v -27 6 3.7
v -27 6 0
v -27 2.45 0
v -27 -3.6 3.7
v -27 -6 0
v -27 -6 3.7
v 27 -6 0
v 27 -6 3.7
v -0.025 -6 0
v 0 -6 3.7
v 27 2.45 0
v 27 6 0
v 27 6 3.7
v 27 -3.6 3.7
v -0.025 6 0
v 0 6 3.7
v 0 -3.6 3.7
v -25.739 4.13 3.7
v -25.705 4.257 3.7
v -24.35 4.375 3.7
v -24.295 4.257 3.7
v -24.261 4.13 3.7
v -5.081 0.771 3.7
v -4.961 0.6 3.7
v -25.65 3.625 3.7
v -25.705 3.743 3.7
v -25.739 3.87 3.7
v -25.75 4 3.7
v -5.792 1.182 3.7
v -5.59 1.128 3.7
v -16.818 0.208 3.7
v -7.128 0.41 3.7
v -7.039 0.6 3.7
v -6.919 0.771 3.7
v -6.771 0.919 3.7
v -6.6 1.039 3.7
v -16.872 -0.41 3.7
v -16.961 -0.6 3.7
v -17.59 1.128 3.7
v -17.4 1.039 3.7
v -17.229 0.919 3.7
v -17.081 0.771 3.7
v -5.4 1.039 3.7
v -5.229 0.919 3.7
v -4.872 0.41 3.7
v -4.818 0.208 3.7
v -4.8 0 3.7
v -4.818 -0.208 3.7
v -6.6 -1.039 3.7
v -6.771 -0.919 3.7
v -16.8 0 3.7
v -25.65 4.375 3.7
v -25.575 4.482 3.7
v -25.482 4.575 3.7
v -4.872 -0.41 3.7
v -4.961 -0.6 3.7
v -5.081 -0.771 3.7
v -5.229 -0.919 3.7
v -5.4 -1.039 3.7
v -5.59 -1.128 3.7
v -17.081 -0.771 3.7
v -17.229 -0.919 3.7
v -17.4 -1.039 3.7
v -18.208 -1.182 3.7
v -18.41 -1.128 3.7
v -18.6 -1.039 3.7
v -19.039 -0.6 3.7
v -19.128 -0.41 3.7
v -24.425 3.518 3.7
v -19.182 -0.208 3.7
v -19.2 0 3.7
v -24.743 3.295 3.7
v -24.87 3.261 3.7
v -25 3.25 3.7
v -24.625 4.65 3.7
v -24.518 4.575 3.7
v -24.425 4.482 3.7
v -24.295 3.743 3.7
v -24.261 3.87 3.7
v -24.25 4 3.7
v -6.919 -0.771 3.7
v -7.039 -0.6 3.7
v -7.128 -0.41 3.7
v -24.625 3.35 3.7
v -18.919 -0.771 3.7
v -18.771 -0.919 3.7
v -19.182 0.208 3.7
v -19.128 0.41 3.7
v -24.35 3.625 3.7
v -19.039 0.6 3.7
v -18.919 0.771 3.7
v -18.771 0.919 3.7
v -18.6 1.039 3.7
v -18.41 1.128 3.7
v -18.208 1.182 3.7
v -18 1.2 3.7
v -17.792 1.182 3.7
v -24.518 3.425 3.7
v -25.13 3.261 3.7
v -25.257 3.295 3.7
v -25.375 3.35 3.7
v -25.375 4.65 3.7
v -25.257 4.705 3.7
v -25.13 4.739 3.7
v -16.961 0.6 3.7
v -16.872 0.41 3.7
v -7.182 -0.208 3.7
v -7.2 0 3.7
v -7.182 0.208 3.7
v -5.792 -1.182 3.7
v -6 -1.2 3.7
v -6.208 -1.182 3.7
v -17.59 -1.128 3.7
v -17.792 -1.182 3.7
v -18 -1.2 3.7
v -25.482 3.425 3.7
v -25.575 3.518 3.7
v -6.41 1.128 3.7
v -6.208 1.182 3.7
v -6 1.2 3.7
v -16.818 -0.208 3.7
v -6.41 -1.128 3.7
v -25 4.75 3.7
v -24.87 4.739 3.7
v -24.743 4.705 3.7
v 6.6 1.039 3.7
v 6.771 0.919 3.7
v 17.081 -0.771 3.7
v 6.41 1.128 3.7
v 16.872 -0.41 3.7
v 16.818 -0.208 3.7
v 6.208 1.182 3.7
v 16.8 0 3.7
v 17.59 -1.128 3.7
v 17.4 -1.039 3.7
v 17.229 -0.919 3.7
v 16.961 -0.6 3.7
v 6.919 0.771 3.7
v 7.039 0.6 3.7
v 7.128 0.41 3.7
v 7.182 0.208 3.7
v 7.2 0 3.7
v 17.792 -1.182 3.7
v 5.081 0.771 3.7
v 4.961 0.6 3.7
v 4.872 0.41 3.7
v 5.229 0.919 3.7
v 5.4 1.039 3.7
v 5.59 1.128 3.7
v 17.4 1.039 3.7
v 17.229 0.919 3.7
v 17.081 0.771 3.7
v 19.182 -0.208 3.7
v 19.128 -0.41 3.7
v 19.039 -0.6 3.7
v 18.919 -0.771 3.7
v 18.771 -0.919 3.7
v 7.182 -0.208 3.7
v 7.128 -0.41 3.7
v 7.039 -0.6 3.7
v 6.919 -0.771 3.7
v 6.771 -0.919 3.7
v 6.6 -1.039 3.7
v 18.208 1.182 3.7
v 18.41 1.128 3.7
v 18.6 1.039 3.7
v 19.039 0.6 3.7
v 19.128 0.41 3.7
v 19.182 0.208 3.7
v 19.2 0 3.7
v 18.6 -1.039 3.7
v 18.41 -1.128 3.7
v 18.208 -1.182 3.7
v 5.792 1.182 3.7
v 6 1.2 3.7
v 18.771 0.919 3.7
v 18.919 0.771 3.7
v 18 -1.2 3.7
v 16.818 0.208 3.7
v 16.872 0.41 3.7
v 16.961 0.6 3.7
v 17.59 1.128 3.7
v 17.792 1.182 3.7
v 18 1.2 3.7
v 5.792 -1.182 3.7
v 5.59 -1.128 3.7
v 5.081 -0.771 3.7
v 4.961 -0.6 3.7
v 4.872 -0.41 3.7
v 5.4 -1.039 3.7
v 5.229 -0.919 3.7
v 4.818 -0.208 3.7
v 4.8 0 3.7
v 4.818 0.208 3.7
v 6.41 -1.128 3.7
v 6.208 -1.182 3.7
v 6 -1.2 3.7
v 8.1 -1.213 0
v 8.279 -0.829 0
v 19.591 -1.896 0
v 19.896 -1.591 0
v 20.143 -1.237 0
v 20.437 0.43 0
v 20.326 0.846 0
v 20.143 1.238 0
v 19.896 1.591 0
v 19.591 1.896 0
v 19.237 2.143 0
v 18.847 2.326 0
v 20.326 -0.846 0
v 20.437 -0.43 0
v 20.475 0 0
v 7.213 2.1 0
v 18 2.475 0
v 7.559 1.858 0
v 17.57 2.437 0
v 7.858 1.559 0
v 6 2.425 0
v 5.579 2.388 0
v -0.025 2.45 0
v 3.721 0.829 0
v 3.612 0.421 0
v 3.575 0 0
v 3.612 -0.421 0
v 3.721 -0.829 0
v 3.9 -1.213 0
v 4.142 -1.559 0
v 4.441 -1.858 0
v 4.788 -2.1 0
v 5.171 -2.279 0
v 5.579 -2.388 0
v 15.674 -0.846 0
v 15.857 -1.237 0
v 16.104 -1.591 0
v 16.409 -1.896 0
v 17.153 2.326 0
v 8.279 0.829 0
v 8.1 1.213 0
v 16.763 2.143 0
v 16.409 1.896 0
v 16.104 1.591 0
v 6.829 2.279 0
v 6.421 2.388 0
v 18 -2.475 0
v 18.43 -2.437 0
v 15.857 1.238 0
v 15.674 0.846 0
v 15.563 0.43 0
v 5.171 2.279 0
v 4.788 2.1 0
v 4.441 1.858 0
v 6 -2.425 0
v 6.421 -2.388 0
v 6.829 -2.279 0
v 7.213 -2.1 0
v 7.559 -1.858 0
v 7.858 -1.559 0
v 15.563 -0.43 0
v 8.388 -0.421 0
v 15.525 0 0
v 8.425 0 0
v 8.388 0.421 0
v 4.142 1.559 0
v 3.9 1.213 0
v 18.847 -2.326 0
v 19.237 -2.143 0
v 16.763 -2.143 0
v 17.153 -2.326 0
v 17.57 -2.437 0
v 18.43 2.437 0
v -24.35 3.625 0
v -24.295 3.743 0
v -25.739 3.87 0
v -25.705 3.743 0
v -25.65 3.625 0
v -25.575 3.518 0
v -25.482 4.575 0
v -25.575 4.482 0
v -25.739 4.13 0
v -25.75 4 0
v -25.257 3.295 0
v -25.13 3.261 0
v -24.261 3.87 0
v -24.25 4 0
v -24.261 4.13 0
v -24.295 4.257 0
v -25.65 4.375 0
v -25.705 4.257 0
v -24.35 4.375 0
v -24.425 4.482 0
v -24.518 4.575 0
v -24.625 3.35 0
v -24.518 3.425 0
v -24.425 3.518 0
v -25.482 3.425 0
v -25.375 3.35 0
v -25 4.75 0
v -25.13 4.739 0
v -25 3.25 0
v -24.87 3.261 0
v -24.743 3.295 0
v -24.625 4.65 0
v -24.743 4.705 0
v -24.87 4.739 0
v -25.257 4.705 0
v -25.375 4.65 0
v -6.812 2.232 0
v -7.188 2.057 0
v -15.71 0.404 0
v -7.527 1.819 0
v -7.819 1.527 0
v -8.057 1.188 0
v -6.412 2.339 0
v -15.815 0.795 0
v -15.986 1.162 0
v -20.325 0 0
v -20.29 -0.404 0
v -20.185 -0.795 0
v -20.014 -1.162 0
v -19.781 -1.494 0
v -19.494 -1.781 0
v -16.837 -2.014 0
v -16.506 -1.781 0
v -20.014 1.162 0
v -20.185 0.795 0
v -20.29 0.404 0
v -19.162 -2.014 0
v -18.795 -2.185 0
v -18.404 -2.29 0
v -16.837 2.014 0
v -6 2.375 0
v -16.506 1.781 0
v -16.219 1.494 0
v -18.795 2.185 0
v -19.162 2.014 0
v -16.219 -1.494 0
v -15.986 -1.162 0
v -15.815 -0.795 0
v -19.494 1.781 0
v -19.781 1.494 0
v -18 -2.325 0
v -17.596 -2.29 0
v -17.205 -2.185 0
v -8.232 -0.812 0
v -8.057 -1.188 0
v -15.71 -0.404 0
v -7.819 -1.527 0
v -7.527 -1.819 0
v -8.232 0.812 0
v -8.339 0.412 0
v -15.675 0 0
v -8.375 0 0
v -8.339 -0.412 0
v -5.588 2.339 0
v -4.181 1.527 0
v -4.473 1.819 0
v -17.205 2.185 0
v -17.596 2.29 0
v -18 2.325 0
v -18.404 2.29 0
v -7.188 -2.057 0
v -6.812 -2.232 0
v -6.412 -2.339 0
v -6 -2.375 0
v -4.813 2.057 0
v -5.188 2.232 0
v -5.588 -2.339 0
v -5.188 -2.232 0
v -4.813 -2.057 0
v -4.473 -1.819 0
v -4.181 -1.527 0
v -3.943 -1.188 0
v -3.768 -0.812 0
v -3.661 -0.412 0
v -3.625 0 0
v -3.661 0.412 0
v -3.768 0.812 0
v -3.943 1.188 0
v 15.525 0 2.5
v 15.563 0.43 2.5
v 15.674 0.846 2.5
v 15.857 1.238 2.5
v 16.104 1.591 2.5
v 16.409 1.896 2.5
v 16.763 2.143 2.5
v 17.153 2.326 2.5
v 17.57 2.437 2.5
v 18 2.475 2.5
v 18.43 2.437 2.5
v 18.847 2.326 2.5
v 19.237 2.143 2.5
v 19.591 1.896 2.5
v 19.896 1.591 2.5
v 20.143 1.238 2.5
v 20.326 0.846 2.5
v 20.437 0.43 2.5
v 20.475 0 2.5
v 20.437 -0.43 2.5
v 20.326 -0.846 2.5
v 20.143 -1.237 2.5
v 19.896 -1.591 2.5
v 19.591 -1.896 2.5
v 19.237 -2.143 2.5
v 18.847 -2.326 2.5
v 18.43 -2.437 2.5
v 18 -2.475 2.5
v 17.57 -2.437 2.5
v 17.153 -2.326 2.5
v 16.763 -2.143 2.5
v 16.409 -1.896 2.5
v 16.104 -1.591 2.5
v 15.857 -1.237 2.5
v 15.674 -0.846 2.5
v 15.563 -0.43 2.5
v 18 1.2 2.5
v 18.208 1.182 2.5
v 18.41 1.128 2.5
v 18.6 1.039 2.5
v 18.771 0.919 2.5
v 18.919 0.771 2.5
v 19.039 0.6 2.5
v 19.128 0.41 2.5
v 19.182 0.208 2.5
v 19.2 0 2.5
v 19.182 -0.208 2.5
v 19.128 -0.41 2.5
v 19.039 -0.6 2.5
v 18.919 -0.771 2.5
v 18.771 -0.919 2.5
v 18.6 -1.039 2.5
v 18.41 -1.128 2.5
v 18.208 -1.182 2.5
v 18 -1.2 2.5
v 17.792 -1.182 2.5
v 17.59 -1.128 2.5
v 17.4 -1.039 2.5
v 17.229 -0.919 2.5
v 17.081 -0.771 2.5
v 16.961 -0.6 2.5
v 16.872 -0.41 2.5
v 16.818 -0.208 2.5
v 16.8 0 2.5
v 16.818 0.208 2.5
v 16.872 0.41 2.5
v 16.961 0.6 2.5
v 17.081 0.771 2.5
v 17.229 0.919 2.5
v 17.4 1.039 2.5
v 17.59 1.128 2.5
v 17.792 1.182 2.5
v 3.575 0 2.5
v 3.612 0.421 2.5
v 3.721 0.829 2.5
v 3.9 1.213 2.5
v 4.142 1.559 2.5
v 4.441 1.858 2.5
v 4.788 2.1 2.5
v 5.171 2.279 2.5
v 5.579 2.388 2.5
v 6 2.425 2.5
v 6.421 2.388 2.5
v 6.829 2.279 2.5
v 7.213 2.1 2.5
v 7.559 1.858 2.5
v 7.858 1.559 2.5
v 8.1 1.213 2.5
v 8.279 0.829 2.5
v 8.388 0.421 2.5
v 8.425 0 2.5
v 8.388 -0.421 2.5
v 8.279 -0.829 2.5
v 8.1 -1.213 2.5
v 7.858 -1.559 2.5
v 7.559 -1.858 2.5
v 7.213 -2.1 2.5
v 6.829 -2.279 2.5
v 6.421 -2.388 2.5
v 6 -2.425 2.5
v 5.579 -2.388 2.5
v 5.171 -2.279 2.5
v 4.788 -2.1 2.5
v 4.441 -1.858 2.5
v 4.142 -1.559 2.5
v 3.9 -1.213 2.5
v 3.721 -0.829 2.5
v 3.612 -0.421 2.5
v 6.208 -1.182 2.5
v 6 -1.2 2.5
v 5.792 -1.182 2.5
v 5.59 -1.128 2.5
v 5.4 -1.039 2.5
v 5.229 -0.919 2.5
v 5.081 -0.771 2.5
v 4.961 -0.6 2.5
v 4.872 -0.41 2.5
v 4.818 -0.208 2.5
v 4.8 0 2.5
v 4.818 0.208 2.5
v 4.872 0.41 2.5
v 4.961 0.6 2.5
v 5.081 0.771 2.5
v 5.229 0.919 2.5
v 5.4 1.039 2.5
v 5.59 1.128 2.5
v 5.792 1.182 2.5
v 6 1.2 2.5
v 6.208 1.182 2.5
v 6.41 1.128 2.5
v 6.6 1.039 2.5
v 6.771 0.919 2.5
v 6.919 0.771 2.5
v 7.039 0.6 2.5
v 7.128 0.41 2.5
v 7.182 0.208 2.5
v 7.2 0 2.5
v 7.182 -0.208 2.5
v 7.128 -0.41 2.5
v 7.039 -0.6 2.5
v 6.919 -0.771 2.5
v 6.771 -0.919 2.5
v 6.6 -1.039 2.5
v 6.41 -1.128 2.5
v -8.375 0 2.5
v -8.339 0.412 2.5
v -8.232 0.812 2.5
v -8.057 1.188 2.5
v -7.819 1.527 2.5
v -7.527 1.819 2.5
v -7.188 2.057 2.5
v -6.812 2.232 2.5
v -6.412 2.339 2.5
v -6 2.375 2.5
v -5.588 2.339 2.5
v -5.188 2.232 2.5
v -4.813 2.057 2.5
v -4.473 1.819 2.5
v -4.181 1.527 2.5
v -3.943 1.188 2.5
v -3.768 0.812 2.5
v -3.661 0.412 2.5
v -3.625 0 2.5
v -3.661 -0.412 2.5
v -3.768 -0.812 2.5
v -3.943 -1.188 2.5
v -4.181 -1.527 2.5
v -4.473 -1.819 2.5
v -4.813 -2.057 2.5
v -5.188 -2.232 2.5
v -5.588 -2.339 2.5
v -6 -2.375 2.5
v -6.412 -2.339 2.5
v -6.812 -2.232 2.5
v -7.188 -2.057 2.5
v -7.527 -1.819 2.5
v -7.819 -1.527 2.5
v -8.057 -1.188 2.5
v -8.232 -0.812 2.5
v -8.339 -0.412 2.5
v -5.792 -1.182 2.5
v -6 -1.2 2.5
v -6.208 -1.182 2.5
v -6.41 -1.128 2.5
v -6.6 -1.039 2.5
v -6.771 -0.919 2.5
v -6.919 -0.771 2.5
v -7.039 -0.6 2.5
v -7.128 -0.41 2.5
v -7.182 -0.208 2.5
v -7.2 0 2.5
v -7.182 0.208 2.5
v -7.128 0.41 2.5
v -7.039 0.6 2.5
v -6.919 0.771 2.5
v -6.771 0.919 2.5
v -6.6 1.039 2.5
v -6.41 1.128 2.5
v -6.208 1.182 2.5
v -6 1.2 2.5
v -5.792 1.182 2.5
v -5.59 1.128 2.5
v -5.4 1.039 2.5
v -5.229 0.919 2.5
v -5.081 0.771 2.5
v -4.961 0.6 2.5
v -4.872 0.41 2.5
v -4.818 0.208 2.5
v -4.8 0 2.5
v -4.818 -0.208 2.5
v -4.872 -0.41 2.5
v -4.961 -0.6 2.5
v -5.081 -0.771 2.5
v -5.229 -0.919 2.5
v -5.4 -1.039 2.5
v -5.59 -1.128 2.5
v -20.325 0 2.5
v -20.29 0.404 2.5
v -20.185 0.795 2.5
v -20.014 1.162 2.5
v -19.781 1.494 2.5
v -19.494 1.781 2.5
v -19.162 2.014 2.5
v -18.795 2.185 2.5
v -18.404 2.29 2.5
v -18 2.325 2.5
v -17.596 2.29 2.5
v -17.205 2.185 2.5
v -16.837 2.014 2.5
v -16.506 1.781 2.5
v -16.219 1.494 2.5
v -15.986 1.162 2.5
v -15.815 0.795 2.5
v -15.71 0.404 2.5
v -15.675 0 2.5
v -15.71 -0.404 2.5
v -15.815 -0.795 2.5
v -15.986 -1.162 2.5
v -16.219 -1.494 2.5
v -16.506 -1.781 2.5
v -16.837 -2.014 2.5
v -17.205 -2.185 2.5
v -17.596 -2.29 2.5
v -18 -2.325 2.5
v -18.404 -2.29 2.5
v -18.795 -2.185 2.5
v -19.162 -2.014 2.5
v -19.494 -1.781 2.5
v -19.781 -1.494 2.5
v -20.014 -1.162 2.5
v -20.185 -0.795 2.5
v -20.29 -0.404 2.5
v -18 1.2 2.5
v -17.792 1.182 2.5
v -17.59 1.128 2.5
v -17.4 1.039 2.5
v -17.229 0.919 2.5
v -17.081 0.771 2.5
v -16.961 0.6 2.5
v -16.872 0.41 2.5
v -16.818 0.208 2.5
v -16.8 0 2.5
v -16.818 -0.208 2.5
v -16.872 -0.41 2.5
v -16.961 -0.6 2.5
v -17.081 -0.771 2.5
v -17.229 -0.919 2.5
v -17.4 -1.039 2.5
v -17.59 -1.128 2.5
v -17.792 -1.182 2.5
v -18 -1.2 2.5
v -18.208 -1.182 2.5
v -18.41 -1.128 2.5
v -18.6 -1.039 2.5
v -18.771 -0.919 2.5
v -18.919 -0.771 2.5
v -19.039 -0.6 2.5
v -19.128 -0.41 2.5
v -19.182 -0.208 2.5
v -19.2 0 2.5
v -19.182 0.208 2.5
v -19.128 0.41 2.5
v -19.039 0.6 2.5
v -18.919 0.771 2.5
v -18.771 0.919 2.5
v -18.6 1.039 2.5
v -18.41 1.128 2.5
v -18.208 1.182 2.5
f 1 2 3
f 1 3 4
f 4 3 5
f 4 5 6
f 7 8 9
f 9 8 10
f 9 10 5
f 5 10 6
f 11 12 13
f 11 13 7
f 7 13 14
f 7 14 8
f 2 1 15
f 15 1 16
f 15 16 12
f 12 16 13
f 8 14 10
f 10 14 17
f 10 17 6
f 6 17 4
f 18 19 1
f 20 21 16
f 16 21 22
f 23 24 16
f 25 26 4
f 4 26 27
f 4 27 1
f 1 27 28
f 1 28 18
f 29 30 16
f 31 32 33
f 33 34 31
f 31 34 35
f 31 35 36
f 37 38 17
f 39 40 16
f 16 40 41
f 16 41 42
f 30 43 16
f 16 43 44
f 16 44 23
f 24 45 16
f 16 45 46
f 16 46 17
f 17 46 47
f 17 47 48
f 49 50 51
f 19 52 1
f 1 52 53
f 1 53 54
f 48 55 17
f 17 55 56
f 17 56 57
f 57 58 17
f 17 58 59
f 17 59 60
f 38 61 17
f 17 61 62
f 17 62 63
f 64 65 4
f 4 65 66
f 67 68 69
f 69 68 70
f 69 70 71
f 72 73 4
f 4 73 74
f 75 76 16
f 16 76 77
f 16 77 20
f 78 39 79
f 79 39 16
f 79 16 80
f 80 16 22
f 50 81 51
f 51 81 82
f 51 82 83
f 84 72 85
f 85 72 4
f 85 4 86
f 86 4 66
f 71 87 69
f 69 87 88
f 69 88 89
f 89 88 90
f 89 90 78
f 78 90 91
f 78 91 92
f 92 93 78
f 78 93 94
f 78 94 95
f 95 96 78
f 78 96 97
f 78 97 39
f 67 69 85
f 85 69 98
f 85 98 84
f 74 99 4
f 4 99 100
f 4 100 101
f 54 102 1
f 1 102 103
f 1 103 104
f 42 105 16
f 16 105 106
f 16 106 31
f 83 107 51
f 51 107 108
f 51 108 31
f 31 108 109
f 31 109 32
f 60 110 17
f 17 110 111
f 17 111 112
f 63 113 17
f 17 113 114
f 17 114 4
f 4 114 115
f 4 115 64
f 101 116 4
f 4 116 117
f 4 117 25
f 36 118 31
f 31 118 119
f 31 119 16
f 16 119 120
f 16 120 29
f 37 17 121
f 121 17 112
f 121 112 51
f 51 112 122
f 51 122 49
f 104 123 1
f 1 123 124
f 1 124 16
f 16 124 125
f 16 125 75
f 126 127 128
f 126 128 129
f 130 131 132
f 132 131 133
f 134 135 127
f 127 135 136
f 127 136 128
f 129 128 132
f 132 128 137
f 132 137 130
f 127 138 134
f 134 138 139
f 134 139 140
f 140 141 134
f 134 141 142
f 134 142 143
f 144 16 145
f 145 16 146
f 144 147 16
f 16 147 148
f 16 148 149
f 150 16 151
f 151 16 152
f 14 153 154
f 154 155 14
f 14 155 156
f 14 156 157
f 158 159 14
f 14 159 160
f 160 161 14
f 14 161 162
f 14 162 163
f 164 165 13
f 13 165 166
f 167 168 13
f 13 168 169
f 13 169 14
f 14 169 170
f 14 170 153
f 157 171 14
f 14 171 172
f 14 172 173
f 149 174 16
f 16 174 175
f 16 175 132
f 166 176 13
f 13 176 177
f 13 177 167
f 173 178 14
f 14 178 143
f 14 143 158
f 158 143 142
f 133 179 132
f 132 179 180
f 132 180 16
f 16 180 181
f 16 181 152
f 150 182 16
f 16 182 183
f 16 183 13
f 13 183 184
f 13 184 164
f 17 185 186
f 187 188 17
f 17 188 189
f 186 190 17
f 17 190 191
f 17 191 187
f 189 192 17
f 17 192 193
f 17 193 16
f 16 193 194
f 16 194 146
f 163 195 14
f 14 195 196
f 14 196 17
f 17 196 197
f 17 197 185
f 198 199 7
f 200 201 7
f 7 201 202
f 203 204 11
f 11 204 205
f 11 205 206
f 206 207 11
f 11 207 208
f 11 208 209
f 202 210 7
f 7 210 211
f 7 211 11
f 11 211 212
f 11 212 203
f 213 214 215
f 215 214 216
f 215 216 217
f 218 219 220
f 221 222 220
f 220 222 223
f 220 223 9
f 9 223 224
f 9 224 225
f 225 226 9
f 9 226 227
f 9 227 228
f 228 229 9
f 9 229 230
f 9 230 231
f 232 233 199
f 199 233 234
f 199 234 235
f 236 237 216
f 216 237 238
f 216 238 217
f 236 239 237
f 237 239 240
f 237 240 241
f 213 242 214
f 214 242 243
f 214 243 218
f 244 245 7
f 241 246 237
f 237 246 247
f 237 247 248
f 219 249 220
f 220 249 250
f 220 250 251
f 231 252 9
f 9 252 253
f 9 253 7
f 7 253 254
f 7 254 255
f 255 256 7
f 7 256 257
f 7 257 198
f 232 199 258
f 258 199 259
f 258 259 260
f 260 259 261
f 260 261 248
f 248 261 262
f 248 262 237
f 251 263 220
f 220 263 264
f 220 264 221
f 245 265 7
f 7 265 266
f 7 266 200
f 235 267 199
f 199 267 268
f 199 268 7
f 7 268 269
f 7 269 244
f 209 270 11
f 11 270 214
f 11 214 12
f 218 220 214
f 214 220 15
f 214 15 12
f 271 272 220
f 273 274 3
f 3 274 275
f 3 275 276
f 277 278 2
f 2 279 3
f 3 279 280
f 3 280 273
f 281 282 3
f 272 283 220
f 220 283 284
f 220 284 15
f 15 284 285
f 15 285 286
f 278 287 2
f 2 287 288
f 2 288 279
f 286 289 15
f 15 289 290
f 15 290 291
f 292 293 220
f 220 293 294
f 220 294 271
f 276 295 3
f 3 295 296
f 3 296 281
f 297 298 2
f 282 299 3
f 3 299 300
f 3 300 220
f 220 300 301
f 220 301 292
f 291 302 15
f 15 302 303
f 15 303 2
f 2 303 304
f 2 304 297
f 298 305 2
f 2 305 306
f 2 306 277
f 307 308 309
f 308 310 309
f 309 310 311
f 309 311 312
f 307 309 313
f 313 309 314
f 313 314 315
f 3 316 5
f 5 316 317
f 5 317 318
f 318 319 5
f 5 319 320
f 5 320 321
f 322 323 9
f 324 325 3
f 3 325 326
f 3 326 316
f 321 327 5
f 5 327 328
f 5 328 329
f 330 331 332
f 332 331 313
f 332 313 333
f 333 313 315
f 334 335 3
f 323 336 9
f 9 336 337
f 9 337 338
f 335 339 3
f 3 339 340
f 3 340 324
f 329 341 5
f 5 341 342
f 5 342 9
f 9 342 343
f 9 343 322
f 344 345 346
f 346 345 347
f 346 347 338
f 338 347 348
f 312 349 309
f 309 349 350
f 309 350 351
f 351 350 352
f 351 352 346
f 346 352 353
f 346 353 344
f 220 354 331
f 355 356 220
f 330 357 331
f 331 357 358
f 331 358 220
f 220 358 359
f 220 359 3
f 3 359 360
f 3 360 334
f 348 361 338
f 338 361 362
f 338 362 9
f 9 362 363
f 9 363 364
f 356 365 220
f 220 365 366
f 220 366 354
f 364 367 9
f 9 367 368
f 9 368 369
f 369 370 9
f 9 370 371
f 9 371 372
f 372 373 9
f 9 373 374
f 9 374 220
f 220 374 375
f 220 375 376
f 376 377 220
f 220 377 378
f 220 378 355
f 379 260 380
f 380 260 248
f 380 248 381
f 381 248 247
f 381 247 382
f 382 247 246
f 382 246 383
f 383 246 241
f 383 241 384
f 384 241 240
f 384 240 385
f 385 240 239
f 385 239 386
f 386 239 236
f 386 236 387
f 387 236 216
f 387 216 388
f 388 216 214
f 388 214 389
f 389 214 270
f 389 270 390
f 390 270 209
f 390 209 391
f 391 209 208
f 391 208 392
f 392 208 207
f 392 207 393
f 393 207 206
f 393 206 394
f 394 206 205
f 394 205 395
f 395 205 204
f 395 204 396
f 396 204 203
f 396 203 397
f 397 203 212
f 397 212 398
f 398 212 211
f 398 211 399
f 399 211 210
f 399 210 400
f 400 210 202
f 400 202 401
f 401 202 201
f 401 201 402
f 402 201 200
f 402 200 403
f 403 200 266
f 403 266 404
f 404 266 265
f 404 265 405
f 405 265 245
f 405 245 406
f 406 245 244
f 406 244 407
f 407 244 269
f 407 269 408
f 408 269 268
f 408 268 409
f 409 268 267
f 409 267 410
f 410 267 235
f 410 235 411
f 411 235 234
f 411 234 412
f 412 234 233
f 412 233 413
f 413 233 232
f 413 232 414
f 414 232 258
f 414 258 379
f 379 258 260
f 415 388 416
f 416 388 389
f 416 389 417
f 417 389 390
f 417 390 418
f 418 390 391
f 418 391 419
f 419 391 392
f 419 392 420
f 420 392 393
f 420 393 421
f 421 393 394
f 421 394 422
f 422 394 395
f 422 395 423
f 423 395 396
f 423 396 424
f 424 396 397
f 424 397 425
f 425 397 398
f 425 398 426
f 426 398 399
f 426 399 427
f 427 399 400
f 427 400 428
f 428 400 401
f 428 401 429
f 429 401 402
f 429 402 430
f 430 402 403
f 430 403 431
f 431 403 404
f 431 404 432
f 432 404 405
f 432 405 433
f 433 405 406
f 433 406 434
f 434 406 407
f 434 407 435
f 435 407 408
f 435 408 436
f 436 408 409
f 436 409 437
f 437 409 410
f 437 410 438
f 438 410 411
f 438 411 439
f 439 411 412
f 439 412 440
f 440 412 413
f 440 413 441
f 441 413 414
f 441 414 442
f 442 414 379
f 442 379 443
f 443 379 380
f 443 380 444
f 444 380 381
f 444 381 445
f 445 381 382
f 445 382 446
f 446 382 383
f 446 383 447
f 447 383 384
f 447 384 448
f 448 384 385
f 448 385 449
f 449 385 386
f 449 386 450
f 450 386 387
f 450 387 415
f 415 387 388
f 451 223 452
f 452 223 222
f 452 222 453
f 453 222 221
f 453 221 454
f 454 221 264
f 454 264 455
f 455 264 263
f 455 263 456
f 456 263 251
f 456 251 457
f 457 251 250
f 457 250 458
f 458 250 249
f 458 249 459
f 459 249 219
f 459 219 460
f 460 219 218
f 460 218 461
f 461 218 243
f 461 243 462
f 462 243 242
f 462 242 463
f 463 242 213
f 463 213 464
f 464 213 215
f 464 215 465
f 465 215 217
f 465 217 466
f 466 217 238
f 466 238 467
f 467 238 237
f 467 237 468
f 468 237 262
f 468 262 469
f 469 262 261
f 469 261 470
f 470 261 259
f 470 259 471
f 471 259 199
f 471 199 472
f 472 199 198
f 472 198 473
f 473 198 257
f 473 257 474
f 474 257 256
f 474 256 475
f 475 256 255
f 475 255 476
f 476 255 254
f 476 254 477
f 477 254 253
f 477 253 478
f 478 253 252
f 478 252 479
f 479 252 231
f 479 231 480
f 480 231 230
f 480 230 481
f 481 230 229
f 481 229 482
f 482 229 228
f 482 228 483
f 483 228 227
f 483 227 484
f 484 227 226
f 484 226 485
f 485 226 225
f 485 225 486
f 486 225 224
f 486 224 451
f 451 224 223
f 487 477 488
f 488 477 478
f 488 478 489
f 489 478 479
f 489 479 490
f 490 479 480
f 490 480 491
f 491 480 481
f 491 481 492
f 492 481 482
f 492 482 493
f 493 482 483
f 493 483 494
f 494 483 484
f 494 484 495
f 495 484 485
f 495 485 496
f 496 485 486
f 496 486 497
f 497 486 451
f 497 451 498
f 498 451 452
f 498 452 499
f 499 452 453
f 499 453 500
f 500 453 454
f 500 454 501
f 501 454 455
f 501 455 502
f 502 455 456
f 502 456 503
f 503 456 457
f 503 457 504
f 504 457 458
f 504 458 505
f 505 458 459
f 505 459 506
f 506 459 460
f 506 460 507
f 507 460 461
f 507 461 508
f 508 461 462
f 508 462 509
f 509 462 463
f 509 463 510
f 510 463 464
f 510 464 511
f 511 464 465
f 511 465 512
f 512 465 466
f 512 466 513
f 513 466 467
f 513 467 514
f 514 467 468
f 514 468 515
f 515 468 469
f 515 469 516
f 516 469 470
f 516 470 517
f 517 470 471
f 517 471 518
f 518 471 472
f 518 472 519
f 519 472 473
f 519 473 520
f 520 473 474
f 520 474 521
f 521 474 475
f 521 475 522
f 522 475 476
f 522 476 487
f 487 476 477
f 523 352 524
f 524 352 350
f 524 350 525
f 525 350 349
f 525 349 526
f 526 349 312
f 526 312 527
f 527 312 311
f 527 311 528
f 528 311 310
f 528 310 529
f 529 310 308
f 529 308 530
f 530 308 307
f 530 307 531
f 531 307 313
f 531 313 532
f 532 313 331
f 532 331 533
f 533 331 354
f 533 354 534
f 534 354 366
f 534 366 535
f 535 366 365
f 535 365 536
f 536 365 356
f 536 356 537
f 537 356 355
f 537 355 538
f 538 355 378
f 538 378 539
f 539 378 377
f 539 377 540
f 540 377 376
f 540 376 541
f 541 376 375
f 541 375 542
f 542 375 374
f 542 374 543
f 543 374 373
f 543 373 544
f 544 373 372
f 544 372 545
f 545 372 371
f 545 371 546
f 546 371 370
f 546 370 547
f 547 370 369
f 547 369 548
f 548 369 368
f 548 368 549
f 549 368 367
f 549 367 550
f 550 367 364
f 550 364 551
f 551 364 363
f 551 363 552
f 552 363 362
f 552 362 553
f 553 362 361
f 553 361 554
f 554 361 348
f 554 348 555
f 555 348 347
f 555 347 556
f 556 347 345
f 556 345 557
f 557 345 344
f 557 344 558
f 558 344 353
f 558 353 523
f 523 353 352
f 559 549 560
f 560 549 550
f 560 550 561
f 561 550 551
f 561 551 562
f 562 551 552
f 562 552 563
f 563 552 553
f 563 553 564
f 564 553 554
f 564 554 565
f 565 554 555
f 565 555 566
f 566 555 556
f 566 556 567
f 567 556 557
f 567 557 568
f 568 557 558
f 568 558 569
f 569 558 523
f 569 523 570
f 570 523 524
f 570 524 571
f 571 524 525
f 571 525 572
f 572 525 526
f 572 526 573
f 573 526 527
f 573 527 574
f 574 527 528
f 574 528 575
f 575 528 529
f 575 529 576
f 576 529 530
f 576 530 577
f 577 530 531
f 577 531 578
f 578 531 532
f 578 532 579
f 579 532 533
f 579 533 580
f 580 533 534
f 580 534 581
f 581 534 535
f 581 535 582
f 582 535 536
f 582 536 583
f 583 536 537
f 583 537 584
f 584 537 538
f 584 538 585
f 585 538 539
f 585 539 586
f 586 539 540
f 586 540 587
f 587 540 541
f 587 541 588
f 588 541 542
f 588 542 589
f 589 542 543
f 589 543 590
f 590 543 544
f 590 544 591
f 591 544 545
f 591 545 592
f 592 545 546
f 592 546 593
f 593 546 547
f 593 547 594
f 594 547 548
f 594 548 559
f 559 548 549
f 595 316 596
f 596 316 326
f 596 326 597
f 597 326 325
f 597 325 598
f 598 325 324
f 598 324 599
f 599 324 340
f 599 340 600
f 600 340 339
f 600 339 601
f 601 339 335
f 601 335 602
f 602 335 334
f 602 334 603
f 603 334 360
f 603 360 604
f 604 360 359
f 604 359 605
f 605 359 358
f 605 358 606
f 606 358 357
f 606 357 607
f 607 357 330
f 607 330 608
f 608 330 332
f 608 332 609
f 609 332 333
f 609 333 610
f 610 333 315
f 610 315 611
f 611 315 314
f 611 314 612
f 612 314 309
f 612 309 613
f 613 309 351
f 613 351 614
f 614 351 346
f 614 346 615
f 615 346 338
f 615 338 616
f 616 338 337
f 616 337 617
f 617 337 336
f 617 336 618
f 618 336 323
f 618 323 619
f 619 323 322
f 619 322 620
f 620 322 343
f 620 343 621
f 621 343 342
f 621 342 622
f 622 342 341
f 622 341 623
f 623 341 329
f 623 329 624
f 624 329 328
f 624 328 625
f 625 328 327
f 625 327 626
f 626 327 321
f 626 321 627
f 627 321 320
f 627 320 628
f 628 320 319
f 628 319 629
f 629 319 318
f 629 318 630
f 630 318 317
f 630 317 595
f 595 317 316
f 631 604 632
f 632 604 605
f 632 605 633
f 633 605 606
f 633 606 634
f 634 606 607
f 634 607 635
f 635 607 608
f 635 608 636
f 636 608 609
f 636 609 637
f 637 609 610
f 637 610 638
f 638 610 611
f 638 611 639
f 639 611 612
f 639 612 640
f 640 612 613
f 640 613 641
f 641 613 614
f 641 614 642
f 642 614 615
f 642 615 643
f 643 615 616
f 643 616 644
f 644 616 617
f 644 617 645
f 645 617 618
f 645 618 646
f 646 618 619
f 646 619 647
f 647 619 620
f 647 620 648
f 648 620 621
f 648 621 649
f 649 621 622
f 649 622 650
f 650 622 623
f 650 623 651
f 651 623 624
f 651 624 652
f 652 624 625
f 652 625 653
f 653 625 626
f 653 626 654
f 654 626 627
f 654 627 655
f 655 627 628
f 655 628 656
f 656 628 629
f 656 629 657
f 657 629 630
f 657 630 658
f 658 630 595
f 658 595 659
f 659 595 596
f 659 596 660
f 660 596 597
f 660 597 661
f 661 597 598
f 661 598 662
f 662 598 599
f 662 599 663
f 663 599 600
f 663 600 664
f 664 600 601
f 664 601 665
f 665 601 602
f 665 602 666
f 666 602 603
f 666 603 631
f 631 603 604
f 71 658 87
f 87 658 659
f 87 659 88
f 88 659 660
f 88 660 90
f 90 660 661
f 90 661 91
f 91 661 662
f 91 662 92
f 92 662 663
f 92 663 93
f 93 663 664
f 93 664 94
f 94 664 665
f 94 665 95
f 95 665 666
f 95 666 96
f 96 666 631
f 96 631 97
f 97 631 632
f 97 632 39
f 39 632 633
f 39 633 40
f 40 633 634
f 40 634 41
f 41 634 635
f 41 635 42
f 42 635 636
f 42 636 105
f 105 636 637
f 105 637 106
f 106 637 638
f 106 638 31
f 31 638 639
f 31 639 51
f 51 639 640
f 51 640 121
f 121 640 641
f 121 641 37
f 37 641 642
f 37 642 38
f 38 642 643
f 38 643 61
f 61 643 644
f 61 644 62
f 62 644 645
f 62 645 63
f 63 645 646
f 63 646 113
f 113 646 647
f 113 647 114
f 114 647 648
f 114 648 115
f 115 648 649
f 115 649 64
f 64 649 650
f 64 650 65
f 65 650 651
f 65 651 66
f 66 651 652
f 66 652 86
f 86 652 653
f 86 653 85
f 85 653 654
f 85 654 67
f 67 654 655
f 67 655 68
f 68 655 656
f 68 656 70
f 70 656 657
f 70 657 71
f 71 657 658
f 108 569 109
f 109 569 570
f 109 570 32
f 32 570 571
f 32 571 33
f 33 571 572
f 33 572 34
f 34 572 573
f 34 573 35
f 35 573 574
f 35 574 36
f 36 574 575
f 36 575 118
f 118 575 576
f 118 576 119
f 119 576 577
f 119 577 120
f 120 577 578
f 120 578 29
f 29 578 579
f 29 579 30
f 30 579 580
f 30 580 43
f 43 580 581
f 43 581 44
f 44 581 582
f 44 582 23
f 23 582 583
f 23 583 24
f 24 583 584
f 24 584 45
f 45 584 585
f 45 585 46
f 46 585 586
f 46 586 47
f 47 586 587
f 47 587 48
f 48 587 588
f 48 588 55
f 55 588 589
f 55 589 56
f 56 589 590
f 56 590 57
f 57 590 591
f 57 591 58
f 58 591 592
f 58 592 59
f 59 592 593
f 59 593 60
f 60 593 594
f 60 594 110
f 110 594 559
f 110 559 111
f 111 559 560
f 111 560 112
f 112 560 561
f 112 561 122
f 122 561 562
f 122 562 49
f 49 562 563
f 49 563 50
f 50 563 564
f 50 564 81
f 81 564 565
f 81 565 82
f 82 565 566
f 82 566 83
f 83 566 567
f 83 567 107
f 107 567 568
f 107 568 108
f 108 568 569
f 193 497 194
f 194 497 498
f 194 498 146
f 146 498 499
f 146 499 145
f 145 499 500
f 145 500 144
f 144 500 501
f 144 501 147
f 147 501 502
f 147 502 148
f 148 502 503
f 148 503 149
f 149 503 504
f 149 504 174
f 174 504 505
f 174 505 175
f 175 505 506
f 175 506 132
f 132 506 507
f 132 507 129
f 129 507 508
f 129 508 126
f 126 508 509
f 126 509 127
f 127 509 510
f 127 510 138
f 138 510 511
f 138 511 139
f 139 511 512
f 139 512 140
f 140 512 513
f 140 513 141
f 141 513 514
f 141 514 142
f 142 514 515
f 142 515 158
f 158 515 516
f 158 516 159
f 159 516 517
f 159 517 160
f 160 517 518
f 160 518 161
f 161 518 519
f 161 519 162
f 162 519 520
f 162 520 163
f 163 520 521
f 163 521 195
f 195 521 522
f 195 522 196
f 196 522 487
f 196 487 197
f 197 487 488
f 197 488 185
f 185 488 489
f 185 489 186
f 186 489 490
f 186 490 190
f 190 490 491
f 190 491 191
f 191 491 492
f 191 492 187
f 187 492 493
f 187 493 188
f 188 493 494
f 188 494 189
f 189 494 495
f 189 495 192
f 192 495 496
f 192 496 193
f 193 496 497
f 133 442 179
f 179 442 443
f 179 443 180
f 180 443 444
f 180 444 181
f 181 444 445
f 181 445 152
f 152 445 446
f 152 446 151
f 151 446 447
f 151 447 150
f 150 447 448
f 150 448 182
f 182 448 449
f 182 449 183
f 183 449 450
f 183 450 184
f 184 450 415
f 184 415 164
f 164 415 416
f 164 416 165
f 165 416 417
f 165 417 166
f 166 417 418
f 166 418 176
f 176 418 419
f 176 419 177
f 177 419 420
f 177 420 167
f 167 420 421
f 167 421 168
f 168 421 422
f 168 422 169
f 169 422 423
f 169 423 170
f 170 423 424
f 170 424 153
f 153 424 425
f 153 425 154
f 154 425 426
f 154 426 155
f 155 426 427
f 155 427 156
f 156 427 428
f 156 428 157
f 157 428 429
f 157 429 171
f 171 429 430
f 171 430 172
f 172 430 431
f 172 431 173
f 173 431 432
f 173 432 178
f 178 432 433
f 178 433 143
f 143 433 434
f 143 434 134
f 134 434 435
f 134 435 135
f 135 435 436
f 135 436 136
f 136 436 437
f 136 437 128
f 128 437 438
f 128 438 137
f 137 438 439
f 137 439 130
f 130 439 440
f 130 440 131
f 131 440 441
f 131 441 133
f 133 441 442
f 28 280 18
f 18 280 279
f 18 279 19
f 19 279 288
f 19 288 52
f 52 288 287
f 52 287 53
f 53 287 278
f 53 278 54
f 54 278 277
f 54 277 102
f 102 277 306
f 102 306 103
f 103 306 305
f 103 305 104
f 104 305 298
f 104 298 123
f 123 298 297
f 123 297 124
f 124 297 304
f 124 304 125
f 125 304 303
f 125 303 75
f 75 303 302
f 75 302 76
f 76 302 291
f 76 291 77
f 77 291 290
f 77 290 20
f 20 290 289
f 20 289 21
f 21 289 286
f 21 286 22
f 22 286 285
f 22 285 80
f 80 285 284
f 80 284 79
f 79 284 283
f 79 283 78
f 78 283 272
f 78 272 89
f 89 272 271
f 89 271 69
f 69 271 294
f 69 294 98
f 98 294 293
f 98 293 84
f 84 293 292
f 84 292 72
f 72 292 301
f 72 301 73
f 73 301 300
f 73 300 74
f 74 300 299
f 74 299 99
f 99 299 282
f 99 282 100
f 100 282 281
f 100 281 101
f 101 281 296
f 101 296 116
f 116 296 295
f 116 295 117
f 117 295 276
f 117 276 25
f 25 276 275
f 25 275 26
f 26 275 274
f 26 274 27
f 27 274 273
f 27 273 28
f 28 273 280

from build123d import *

# Parameters (mm, degrees)
COUPON_BAR_54X12X3P7_PROFILE_W                 = 54
COUPON_BAR_54X12X3P7_PROFILE_H                 = 12
COUPON_BAR_54X12X3P7_DEPTH                     = 3.7
PRESS_SOCKETS_4P65_4P75_4P85_4P95_DE_2_R       = 2.325
PRESS_SOCKETS_4P65_4P75_4P85_4P95_DE_2_R_2     = 2.375
PRESS_SOCKETS_4P65_4P75_4P85_4P95_DE_2_R_3     = 2.425
PRESS_SOCKETS_4P65_4P75_4P85_4P95_DE_2_R_4     = 2.475
PRESS_SOCKETS_4P65_4P75_4P85_4P95_DEPTH2_DEPTH = 2.5
M2_CENTRE_SCREW_CLEARANCE_START                = -50
M2_CENTRE_SCREW_CLEARANCE_PROFILE_R            = 1.2
M2_CENTRE_SCREW_CLEARANCE_DEPTH                = 78.90501747
ORIENTATION_MARK_AT_SMALLEST_SOCKET_START      = -50
ORIENTATION_MARK_AT_SMALLEST_SOCKET_PROF_R     = 0.75
ORIENTATION_MARK_AT_SMALLEST_SOCKET_DEPTH      = 78.90501747


with BuildPart() as part:
    # Coupon_bar_54x12x3p7_profile → Coupon_bar_54x12x3p7 (new body)
    with BuildSketch(Plane.XY):
        Rectangle(COUPON_BAR_54X12X3P7_PROFILE_W, COUPON_BAR_54X12X3P7_PROFILE_H)
    extrude(amount=COUPON_BAR_54X12X3P7_DEPTH)

    # Press_sockets_4p65_4p75_4p85_4p95_de 2 → Press_sockets_4p65_4p75_4p85_4p95_depth2 (cut)
    with BuildSketch(Plane.XY):
        with Locations((-18, 0)):
            Circle(PRESS_SOCKETS_4P65_4P75_4P85_4P95_DE_2_R)
        with Locations((-6, 0)):
            Circle(PRESS_SOCKETS_4P65_4P75_4P85_4P95_DE_2_R_2)
        with Locations((6, 0)):
            Circle(PRESS_SOCKETS_4P65_4P75_4P85_4P95_DE_2_R_3)
        with Locations((18, 0)):
            Circle(PRESS_SOCKETS_4P65_4P75_4P85_4P95_DE_2_R_4)
    extrude(amount=PRESS_SOCKETS_4P65_4P75_4P85_4P95_DEPTH2_DEPTH, mode=Mode.SUBTRACT)

    # M2_centre_screw_clearance_profile → M2_centre_screw_clearance (cut, through all)
    with BuildSketch(Plane.XY.offset(M2_CENTRE_SCREW_CLEARANCE_START)):
        with Locations(Location((-18, 0, 0), (0, 0, 180))):
            Circle(M2_CENTRE_SCREW_CLEARANCE_PROFILE_R)
        with Locations(Location((-6, 0, 0), (0, 0, 180))):
            Circle(M2_CENTRE_SCREW_CLEARANCE_PROFILE_R)
        with Locations(Location((6, 0, 0), (0, 0, 180))):
            Circle(M2_CENTRE_SCREW_CLEARANCE_PROFILE_R)
        with Locations(Location((18, 0, 0), (0, 0, 180))):
            Circle(M2_CENTRE_SCREW_CLEARANCE_PROFILE_R)
    extrude(amount=M2_CENTRE_SCREW_CLEARANCE_DEPTH, mode=Mode.SUBTRACT)

    # Orientation_mark_at_smallest_socket_profile → Orientation_mark_at_smallest_socket (cut, through all)
    with BuildSketch(Plane.XY.offset(ORIENTATION_MARK_AT_SMALLEST_SOCKET_START)):
        with Locations(Location((-25, 4, 0), (0, 0, 180))):
            Circle(ORIENTATION_MARK_AT_SMALLEST_SOCKET_PROF_R)
    extrude(amount=ORIENTATION_MARK_AT_SMALLEST_SOCKET_DEPTH, mode=Mode.SUBTRACT)


solid = part.part
